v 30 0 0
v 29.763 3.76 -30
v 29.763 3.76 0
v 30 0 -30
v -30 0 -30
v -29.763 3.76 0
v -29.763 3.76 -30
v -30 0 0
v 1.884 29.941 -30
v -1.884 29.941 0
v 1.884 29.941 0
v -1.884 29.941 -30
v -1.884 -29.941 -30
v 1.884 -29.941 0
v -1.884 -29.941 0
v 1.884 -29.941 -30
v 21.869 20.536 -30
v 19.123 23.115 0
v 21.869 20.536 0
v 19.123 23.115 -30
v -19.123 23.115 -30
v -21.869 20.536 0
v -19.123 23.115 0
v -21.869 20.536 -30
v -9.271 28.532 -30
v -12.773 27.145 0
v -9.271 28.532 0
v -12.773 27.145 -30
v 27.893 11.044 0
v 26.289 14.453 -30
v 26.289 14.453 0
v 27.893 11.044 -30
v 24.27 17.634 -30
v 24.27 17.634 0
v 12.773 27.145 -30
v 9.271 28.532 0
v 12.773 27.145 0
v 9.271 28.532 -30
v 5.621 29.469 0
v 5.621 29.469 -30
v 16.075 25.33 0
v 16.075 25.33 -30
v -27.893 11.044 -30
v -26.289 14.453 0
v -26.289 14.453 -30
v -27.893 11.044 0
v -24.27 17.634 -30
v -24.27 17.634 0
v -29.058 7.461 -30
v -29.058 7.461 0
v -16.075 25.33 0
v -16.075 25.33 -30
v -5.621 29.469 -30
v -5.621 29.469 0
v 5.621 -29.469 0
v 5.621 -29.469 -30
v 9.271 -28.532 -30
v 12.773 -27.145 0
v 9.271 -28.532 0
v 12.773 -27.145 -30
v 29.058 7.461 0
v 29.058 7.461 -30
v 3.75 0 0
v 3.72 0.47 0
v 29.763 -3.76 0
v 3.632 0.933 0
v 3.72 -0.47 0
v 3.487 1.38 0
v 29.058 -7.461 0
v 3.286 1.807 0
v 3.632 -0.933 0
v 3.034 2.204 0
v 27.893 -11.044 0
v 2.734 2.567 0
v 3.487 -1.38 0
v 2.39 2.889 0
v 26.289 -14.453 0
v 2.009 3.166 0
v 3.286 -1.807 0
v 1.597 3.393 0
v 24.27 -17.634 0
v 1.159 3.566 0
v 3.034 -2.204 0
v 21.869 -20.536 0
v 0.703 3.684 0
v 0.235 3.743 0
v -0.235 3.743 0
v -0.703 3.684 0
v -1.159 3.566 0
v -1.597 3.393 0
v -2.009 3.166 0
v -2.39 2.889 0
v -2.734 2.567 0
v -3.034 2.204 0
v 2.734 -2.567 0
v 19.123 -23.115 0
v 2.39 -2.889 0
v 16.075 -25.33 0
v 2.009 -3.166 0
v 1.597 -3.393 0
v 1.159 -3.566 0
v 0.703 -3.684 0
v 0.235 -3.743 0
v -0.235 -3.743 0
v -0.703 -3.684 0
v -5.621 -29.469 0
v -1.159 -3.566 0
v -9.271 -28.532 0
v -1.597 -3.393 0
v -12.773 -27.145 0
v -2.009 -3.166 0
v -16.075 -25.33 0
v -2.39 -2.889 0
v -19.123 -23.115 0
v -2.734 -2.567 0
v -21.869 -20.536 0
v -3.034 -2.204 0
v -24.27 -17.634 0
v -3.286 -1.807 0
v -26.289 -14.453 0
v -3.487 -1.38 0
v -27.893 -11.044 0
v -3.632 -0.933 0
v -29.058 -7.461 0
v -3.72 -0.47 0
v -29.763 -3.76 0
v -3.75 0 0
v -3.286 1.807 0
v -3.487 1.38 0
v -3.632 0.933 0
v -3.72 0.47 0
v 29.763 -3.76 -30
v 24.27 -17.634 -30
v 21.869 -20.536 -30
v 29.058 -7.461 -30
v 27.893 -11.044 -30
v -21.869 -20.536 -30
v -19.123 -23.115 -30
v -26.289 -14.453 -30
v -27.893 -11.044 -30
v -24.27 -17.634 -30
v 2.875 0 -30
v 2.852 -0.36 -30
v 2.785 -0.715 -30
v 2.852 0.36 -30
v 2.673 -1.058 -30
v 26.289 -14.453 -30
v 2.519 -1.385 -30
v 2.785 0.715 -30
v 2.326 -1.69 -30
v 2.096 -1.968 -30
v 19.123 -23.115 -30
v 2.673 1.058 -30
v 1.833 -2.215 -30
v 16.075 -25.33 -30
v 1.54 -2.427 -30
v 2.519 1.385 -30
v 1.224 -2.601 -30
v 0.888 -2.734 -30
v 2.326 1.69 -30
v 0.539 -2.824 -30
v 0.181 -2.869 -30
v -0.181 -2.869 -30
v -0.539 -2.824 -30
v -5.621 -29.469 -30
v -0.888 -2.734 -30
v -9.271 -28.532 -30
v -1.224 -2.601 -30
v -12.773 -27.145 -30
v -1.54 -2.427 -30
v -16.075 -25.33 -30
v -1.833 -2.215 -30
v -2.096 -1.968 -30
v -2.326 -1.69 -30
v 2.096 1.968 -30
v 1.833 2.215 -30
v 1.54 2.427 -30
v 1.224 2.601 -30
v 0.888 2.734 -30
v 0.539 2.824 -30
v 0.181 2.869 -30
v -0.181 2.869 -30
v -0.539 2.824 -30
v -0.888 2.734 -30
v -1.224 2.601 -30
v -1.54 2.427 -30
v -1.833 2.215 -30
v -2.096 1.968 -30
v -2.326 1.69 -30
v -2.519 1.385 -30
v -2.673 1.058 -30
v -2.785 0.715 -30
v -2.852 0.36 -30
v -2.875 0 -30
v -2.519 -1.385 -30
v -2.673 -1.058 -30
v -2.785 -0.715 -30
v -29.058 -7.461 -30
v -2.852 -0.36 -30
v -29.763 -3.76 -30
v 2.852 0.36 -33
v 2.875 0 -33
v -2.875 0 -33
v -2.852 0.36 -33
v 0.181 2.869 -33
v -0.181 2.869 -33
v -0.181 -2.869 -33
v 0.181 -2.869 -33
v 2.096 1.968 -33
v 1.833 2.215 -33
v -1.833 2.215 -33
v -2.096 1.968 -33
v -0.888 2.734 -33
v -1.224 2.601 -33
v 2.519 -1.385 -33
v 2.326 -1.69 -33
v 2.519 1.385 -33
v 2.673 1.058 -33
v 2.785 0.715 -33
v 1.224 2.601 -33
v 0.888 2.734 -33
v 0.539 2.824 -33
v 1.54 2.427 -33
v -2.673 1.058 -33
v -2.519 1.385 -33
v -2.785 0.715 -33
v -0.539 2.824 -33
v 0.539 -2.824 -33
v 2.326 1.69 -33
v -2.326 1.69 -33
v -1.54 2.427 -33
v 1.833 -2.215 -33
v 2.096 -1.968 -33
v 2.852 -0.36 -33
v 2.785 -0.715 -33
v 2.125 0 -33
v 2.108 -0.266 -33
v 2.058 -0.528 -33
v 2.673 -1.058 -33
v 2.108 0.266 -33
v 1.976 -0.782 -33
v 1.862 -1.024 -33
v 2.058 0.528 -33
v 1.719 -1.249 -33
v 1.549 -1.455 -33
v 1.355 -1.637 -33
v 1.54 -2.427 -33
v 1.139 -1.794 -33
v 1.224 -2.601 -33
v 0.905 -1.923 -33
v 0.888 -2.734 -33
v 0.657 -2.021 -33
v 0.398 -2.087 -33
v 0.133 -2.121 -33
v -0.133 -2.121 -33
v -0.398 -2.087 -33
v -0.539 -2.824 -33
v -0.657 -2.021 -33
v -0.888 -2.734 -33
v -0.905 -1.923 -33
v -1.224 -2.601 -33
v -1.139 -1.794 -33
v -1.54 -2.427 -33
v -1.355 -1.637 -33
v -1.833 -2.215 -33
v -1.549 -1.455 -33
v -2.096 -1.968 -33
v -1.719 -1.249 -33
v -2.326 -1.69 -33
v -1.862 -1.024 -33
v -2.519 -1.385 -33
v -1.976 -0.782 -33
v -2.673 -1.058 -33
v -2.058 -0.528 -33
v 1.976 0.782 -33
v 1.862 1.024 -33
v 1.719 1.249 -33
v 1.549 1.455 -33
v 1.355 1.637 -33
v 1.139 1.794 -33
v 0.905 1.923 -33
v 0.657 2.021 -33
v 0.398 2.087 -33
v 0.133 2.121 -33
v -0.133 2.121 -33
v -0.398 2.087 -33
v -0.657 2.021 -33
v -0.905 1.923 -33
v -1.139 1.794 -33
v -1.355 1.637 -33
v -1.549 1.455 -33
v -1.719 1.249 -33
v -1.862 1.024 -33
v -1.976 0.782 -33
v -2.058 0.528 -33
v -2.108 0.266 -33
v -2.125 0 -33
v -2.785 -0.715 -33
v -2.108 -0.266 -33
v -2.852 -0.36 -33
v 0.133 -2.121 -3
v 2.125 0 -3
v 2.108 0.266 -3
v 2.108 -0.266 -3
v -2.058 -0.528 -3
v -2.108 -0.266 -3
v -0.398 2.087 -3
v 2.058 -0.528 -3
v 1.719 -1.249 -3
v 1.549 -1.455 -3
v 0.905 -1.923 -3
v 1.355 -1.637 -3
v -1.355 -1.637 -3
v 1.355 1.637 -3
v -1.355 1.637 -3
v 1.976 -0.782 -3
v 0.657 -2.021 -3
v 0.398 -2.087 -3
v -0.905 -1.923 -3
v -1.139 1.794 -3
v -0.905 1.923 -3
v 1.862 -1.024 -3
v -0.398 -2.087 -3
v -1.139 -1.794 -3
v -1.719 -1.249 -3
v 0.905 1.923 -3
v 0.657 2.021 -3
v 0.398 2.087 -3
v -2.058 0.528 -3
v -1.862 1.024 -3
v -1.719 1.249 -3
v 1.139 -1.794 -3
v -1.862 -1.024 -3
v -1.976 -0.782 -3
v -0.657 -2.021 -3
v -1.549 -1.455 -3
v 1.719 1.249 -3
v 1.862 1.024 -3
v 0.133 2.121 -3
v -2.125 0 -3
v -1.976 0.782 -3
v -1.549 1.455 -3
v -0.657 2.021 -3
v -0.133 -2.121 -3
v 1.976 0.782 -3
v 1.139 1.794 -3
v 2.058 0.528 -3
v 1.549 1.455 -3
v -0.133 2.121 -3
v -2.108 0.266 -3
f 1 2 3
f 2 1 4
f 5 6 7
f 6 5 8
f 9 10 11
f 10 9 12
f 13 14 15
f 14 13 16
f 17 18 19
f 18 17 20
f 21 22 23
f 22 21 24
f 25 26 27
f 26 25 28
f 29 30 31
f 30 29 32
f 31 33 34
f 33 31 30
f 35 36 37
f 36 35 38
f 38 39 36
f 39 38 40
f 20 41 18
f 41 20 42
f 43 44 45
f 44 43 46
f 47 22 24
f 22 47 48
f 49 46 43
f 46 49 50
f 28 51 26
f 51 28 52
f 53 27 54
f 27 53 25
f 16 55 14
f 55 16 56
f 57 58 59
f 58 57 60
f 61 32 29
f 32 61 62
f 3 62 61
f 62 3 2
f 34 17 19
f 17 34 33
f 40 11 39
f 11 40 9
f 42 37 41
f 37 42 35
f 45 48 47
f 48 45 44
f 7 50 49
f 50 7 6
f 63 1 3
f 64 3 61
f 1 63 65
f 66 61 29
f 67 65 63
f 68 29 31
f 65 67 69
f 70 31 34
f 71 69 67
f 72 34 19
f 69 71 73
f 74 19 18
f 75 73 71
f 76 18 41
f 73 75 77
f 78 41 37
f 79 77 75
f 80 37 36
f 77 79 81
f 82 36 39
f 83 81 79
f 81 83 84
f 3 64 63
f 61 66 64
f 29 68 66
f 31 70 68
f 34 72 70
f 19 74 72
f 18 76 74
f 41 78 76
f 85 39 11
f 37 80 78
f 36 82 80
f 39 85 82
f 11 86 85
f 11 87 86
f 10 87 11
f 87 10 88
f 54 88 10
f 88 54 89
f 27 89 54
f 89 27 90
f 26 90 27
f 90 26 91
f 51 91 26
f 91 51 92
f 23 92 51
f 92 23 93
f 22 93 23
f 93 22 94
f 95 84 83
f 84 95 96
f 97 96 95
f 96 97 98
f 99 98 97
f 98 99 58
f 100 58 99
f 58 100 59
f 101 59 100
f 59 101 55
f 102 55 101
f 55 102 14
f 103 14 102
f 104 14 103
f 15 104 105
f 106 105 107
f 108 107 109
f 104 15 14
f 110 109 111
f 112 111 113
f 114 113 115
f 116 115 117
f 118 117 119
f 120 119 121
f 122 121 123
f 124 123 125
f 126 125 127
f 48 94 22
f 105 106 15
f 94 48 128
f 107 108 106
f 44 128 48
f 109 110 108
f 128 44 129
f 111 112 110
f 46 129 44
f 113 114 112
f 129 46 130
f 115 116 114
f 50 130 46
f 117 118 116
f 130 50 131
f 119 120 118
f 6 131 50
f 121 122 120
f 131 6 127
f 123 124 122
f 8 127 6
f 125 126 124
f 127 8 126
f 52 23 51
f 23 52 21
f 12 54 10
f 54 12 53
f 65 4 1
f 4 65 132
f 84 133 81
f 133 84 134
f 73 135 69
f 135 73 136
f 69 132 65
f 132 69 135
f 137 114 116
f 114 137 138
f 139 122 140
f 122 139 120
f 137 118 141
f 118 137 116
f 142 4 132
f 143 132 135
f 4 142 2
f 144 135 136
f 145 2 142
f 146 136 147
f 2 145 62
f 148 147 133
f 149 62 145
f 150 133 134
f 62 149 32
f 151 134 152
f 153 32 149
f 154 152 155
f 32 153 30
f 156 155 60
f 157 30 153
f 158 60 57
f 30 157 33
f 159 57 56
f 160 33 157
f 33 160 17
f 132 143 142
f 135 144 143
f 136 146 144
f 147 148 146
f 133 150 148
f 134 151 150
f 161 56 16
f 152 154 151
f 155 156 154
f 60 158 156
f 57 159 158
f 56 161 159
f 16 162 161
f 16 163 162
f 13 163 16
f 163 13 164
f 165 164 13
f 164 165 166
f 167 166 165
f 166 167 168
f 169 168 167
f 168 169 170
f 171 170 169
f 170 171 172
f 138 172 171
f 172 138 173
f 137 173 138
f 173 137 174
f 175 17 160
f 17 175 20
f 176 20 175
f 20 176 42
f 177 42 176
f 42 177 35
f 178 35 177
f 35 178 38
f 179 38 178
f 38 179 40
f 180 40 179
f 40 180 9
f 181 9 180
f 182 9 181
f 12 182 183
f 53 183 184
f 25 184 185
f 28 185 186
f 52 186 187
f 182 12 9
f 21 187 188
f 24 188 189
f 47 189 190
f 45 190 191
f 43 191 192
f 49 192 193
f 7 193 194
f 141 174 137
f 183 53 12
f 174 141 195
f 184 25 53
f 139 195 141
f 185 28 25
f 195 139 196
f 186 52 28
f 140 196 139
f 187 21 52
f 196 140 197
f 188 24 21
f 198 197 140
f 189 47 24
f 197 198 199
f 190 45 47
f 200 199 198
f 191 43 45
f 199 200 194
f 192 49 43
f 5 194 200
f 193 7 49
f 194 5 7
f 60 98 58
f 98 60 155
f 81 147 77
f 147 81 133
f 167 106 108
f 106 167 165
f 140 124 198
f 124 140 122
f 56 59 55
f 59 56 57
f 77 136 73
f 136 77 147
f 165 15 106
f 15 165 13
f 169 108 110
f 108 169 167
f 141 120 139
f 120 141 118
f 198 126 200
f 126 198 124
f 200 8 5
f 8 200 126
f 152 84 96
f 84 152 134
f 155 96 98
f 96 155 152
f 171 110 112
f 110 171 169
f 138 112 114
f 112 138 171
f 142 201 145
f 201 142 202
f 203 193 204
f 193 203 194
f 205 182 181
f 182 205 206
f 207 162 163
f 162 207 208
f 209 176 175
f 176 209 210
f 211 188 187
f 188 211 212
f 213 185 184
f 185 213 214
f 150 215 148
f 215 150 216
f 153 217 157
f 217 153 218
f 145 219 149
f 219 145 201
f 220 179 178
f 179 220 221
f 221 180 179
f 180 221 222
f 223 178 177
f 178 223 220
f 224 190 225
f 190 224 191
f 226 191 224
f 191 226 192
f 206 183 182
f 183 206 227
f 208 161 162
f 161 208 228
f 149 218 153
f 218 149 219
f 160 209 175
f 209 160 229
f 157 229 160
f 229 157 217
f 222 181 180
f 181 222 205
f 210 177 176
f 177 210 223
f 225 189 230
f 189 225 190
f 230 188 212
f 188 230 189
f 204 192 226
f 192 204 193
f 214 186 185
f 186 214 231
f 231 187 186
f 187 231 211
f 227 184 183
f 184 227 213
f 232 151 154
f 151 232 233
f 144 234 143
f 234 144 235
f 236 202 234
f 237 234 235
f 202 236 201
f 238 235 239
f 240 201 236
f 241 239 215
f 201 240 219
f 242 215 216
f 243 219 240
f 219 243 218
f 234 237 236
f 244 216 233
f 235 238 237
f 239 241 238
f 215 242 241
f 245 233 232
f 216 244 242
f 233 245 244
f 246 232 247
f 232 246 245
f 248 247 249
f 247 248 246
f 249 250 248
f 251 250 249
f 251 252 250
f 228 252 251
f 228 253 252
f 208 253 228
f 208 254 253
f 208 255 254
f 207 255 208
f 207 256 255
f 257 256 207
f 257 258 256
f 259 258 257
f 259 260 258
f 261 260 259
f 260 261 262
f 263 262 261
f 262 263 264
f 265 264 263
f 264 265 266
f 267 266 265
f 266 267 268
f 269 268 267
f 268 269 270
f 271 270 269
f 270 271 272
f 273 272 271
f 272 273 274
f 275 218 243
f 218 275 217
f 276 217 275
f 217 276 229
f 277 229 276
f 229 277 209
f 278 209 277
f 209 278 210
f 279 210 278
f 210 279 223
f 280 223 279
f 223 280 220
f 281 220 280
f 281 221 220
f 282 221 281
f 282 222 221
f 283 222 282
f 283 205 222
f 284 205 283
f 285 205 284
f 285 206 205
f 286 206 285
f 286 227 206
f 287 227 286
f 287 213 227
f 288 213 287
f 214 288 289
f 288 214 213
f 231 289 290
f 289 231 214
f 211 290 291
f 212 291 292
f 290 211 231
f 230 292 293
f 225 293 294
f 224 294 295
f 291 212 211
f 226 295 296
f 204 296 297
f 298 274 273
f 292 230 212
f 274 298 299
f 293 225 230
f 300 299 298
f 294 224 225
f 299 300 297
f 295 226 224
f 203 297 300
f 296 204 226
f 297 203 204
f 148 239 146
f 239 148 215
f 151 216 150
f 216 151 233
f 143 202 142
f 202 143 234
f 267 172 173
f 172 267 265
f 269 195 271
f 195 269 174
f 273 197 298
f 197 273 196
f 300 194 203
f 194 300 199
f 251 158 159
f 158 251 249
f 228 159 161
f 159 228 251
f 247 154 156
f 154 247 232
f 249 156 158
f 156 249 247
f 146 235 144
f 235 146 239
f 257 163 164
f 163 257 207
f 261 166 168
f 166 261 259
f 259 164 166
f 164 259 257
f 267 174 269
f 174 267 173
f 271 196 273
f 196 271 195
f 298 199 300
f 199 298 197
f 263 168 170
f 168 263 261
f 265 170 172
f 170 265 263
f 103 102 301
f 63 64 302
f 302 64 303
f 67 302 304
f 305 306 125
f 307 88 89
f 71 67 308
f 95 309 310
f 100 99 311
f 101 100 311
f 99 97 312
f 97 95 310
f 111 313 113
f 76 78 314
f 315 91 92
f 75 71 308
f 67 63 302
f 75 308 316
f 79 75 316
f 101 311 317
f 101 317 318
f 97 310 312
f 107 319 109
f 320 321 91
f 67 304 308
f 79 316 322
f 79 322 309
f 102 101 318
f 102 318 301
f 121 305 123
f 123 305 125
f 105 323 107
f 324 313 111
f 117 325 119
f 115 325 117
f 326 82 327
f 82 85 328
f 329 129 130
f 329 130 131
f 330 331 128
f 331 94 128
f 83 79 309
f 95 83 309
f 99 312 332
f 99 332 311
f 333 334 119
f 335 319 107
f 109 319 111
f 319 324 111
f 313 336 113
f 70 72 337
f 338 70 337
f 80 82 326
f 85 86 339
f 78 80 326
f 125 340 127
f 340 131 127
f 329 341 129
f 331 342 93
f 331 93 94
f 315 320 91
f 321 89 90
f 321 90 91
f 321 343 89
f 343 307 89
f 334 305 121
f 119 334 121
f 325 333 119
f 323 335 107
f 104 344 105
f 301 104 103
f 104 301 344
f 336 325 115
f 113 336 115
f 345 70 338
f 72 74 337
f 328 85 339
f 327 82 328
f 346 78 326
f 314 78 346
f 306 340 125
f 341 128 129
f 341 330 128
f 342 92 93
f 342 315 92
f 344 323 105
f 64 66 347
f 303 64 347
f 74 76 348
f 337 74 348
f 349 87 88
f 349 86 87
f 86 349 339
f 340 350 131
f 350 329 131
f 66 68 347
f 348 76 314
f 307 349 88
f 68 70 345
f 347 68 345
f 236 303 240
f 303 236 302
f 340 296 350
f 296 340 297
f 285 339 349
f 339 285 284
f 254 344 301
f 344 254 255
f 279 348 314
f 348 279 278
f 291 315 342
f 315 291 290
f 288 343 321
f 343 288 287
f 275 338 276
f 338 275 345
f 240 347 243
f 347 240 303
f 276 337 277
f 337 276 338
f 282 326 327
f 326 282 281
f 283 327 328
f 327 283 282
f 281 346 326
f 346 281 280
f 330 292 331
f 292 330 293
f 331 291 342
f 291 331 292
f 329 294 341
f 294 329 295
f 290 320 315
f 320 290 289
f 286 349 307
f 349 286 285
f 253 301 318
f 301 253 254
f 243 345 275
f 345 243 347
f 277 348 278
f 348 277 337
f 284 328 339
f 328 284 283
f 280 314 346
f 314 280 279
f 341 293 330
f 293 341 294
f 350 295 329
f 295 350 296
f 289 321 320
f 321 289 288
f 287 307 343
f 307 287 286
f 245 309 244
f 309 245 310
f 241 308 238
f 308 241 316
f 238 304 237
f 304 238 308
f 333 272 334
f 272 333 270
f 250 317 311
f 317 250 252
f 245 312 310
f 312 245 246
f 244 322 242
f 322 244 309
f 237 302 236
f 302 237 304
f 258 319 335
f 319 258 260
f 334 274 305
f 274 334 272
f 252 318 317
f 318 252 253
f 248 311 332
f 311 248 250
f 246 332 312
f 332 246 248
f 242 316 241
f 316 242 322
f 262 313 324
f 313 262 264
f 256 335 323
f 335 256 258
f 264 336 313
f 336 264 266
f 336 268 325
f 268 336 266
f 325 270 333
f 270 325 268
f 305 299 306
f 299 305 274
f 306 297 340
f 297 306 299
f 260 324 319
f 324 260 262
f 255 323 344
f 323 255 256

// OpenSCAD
$fn = 50;

difference() {
	union() {
		translate(v = [0, 0, -30.0]) {
			cylinder(h = 30, r = 30.0);
		}
		#translate(v = [0, 0, -33.0]) {
			cylinder(h = 33, r = 2.875);
		}
	}
	union() {
		translate(v = [0, 0, 0]) {
			rotate(a = [0, 0, 0]) {
				difference() {
					union() {
						translate(v = [0, 0, -33.0]) {
							cylinder(h = 33, r = 2.0);
						}
						translate(v = [0, 0, -3]) {
							cylinder(h = 3, r1 = 2.125, r2 = 3.75);
						}
						translate(v = [0, 0, -33.0]) {
							cylinder(h = 33, r = 2.125);
						}
						translate(v = [0, 0, -33.0]) {
							cylinder(h = 33, r = 2.0);
						}
					}
					union();
				}
			}
		}
	}
}
